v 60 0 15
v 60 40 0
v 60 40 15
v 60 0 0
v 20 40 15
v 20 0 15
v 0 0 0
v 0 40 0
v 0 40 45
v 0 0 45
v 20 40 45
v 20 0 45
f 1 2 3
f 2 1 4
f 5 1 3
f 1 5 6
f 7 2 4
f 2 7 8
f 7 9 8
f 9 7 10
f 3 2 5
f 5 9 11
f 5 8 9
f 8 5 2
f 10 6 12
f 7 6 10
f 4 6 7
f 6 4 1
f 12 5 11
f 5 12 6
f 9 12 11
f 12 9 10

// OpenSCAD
// L 形塊（lblock）— 由 ortho_lib_work/objects.py 產生，請改 objects.py 後重建
// 底座 60×40×15；左邊立起一塊寬 20、全深、高 45 的立板，正視看是 L 形。
union() {
    translate([0,0,0]) cube([60,40,15]);
    translate([0,0,0]) cube([20,40,45]);
}
